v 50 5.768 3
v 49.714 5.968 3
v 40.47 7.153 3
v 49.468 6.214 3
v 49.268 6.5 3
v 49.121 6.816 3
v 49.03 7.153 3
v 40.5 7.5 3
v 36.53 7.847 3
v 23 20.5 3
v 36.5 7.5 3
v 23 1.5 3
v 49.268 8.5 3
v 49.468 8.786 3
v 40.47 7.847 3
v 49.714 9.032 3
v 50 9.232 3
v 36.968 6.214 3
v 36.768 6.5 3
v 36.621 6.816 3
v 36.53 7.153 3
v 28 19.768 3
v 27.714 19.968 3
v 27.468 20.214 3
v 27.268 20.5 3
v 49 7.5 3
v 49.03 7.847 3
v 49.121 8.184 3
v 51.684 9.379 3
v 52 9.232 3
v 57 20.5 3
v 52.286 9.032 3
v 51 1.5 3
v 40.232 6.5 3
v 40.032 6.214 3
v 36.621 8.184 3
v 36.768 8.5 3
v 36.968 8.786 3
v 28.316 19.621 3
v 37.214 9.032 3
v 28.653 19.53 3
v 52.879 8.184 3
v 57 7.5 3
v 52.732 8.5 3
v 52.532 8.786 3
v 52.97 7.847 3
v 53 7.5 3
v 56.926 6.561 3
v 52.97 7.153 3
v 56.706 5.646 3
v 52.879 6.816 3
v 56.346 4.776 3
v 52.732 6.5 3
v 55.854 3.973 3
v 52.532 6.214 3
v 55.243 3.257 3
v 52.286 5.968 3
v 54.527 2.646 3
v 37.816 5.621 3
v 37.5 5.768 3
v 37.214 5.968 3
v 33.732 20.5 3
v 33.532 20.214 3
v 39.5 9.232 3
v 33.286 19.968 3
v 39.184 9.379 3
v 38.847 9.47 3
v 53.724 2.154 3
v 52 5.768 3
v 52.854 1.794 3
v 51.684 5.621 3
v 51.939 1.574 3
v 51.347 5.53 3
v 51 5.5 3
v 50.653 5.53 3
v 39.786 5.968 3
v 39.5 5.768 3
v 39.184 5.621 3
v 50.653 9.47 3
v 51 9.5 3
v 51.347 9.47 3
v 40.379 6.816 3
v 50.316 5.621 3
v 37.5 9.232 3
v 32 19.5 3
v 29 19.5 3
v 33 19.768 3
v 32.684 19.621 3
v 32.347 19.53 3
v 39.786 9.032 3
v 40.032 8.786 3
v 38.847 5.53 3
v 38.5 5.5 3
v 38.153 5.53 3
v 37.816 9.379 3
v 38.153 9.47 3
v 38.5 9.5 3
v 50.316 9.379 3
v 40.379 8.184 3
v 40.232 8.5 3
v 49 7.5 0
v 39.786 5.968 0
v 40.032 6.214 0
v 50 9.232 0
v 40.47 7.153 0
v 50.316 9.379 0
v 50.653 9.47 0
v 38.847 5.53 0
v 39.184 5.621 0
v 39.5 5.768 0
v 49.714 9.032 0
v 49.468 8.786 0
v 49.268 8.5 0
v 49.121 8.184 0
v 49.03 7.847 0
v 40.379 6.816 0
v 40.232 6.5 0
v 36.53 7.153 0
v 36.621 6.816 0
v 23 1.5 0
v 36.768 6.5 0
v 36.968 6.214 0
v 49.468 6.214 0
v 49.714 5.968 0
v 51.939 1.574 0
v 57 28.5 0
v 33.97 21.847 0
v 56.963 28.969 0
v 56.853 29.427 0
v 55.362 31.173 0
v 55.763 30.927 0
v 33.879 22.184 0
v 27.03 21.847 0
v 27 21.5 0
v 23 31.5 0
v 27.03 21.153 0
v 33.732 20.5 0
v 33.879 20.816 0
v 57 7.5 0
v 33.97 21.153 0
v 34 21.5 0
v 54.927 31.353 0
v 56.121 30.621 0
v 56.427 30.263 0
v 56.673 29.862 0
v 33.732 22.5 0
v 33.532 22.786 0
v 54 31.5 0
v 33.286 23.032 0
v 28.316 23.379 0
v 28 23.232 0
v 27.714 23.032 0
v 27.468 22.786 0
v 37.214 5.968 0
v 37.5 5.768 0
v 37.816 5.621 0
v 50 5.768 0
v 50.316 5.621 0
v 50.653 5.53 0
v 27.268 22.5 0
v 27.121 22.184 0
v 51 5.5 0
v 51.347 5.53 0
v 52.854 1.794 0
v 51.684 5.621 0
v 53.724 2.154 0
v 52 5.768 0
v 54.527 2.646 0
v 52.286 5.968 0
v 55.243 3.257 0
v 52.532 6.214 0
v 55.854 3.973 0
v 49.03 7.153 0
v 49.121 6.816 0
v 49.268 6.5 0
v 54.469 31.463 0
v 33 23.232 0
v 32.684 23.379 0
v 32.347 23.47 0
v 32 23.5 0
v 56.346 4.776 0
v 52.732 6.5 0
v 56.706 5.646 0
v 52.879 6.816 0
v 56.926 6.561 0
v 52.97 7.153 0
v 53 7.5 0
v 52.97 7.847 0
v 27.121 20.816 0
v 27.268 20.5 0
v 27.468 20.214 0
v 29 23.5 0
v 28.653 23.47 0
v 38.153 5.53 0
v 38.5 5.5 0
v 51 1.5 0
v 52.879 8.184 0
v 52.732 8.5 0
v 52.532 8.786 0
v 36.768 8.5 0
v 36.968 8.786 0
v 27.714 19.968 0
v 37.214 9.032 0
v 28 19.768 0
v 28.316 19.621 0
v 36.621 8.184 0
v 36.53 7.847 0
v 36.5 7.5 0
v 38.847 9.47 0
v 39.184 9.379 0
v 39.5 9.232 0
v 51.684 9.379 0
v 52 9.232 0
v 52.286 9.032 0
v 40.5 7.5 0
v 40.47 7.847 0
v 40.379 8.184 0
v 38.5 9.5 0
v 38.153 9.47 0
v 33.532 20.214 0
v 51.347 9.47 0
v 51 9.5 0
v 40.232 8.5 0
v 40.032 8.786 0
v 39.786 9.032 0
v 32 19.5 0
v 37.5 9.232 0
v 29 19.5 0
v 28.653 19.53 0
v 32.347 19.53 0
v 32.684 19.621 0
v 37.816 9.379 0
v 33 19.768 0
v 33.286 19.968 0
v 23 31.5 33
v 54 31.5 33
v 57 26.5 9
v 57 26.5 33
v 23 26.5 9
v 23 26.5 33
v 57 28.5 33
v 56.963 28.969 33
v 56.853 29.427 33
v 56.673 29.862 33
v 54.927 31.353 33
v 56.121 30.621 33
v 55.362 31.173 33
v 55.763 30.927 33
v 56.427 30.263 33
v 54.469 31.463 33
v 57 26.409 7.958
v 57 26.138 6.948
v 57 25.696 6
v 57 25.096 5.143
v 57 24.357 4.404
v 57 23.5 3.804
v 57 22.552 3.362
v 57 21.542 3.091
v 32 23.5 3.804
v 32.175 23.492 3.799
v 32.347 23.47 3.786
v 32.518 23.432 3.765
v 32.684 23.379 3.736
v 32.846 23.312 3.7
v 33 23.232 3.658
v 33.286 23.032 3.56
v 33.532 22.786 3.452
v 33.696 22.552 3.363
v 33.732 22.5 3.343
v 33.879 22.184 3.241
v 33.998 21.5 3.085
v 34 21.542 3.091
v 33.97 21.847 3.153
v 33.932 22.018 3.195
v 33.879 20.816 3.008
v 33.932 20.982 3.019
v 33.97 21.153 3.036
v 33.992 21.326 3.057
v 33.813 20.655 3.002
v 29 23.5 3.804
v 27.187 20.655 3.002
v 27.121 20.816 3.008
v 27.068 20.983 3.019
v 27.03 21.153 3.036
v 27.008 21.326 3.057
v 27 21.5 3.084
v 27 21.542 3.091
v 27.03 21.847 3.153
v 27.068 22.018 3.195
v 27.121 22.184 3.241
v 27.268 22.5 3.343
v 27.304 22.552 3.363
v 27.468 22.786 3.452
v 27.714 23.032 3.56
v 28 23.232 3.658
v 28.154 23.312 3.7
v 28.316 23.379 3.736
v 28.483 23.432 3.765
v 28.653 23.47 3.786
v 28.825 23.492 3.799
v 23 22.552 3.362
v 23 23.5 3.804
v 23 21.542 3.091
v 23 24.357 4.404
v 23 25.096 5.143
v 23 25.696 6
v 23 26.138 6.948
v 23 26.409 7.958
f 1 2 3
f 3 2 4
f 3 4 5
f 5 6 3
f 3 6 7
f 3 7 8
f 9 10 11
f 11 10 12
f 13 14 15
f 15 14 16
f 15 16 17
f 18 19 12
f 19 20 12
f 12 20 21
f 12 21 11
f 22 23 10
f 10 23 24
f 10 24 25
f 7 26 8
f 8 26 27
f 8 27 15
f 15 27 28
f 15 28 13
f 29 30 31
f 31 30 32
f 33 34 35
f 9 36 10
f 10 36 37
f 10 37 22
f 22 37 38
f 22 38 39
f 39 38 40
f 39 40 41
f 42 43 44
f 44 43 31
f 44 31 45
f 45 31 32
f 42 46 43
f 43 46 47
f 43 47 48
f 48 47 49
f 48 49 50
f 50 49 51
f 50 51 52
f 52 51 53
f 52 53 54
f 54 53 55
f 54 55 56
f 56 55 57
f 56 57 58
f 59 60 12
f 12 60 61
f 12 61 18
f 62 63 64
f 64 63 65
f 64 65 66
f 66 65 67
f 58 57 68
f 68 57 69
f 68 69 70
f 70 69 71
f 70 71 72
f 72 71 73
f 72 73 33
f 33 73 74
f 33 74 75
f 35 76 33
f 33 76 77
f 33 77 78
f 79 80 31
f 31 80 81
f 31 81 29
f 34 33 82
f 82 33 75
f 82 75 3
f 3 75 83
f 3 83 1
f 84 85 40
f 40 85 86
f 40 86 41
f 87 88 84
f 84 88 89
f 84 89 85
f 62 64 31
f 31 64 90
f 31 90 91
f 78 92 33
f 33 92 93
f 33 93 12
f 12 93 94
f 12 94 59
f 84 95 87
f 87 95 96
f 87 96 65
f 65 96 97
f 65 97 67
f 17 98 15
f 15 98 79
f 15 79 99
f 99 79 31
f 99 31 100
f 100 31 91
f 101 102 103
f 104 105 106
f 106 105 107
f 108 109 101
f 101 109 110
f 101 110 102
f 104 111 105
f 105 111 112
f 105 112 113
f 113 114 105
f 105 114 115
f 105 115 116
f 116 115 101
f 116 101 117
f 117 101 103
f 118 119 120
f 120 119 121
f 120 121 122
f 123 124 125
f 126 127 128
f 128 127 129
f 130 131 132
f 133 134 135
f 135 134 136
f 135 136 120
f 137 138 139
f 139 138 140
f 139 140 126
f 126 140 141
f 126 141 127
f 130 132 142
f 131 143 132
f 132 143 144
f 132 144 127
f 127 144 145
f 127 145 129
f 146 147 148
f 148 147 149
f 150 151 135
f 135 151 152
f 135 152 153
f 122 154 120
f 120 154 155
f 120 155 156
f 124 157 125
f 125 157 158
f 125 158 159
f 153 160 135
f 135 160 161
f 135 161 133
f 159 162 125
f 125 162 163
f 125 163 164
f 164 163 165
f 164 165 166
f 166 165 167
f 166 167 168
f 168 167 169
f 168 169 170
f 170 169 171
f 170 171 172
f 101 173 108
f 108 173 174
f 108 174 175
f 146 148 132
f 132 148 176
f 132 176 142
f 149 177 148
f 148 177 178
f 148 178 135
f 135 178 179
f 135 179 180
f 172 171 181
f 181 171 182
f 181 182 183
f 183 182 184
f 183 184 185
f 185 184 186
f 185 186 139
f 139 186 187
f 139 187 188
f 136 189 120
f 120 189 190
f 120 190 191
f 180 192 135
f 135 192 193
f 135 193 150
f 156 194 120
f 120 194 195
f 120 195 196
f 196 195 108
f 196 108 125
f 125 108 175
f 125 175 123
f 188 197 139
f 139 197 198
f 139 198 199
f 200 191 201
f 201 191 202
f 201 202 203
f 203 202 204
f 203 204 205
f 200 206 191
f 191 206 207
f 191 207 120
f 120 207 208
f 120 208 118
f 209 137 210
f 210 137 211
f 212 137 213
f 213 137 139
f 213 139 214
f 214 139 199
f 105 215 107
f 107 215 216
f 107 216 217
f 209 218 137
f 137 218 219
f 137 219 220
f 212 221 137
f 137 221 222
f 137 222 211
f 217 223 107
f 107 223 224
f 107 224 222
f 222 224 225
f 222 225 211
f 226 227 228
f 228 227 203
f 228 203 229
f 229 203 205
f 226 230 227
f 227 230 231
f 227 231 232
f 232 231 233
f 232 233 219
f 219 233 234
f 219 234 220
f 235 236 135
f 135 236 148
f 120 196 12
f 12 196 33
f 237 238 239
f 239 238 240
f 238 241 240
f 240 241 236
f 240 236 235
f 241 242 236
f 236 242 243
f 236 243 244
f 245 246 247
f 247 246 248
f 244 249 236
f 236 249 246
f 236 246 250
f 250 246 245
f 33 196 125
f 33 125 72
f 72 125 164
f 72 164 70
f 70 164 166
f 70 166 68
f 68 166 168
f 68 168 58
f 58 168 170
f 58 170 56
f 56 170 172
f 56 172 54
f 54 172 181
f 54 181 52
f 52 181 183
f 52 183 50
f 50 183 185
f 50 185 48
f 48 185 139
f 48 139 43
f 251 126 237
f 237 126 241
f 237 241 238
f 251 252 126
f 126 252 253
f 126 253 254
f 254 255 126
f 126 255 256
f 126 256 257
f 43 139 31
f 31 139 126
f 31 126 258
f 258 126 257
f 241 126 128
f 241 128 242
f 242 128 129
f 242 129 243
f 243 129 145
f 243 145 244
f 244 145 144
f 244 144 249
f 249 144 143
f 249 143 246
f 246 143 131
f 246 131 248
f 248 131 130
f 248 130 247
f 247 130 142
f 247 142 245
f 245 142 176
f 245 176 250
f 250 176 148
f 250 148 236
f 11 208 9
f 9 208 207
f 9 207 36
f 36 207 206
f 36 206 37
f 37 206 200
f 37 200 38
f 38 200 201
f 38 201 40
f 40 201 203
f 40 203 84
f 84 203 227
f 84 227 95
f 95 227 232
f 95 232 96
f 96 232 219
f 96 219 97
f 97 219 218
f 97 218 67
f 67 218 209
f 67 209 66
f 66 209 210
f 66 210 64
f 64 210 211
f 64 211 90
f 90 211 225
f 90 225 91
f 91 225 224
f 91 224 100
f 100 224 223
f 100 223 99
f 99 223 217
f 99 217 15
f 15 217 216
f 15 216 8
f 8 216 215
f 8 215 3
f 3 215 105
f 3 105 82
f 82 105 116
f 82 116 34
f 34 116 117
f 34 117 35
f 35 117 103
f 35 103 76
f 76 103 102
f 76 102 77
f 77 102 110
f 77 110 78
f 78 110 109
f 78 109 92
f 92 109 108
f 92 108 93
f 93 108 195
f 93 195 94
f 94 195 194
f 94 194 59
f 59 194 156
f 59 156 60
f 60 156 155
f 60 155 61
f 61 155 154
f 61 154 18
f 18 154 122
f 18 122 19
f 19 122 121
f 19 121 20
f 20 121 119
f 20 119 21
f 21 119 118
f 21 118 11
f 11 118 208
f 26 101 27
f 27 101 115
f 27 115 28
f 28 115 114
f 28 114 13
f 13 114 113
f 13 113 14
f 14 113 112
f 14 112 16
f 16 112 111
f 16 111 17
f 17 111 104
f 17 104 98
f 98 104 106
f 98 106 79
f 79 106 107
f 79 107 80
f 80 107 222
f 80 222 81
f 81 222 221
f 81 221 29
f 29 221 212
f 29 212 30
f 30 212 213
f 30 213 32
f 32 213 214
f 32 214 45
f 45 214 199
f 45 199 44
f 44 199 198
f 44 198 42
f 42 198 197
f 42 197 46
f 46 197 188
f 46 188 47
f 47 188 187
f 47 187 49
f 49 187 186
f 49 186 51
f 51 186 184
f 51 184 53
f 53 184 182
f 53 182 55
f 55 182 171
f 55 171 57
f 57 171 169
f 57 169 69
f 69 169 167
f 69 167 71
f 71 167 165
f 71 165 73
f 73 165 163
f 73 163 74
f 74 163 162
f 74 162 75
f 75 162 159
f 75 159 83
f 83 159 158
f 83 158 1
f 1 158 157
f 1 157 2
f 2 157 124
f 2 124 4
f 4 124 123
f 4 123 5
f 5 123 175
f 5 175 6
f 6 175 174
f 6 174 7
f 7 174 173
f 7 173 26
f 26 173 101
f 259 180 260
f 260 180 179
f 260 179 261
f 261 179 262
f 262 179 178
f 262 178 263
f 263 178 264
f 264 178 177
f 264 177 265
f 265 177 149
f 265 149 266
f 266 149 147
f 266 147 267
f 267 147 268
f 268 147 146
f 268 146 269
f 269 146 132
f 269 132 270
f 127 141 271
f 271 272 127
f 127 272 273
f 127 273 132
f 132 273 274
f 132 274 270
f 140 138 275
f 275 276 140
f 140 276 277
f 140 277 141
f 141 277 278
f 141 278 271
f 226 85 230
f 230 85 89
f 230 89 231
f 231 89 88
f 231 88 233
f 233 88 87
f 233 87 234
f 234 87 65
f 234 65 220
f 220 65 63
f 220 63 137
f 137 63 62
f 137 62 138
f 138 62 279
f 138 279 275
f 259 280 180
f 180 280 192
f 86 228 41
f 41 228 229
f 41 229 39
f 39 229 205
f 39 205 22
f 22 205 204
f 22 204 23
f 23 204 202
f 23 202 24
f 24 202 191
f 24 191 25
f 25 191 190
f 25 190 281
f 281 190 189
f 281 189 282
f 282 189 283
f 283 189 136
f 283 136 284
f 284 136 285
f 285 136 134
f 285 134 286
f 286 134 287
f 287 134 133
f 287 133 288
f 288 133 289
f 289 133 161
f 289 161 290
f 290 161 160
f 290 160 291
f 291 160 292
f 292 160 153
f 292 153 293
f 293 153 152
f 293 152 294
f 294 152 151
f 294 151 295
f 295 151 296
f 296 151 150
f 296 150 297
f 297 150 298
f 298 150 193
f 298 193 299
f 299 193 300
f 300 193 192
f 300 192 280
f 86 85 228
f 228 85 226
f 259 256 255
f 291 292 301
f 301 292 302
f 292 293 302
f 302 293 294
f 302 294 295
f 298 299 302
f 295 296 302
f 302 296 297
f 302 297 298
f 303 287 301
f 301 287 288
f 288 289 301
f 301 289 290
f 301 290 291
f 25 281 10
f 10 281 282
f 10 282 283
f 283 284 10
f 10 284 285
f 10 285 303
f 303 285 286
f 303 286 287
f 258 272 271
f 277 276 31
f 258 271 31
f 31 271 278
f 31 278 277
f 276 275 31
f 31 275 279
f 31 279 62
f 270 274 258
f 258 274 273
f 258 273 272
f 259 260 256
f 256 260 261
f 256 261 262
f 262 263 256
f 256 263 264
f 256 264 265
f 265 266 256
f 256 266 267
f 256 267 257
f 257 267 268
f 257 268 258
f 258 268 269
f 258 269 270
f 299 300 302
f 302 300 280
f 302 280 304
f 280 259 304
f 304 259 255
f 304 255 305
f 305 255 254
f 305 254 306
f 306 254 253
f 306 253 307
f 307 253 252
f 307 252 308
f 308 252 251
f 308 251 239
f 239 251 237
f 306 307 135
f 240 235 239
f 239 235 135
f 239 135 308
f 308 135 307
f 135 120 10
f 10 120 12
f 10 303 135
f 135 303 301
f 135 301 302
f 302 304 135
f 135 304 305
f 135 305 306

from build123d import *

# Parameters (mm, degrees)
ESQUISSE1_R                  = 2
BOSS_EXTRU_1_DEPTH           = 3
BOSS_EXTRU_2_DEPTH           = 30
CONG_1_START                 = -11
CONG_1_DEPTH                 = 34
CONG_1_2_DEPTH               = 25
CONG_1_START_2               = 16.9999999
CONG_1_3_DEPTH               = 6.0000001
CONG_1_START_3               = 3
CONG_1_4_DEPTH               = 2
ENL_V_MAT_EXTRU_1_DEPTH      = 74.008561265
ENL_V_MAT_EXTRU_1_DEPTH_BACK = 74.008561265
ESQUISSE3_W                  = 37.381504973
ESQUISSE3_H                  = 48.316758503


with BuildPart() as part:
    # Esquisse1 → Boss.-Extru.1 (new body)
    with BuildSketch(Plane.XY):
        with BuildLine():
            Line((-5, 1.5), (23, 1.5))
            Line((23, 1.5), (23, 31.5))
            Line((23, 31.5), (-8, 31.5))
            ThreePointArc((-8, 31.5), (-10.121320344, 30.621320344), (-11, 28.5))
            Line((-11, 28.5), (-11, 7.5))
            ThreePointArc((-11, 7.5), (-9.242640687, 3.257359313), (-5, 1.5))
        make_face()
        with Locations((-5, 7.5)):
            Circle(ESQUISSE1_R, mode=Mode.SUBTRACT)
        with Locations((7.5, 7.5)):
            Circle(ESQUISSE1_R, mode=Mode.SUBTRACT)
        with BuildLine():
            Line((14, 23.5), (17, 23.5))
            ThreePointArc((17, 23.5), (19, 21.5), (17, 19.5))
            Line((17, 19.5), (14, 19.5))
            ThreePointArc((14, 19.5), (12, 21.5), (14, 23.5))
        make_face(mode=Mode.SUBTRACT)
    boss_extru_1 = extrude(amount=BOSS_EXTRU_1_DEPTH)

    # Esquisse2 → Boss.-Extru.2 (add)
    with BuildSketch(Plane.XY.offset(3)):
        with BuildLine():
            Line((23, 31.5), (-8, 31.5))
            ThreePointArc((-8, 31.5), (-10.121320344, 30.621320344), (-11, 28.5))
            Line((-11, 28.5), (-11, 26.5))
            Line((-11, 26.5), (23, 26.5))
            Line((23, 26.5), (23, 31.5))
        make_face()
    boss_extru_2 = extrude(amount=BOSS_EXTRU_2_DEPTH)

    # Congé1: read off the stored shape, not the designer's step
    # Congé1 outline → Congé1 (add)
    with BuildSketch(Plane.YZ.offset(CONG_1_START)):
        with BuildLine():
            ThreePointArc((26.5, 9), (25.696152423, 6), (23.5, 3.803847577))
            Line((23.5, 3.803847577), (23.5, 3))
            Line((23.5, 3), (26.5, 3))
            Line((26.5, 3), (26.5, 9))
        make_face()
    cong_1 = extrude(amount=CONG_1_DEPTH)

    # Cong_1 2 outline → Cong_1 2 (add)
    with BuildSketch(Plane.YZ.offset(CONG_1_START)):
        with BuildLine():
            Line((23.5, 3), (23.5, 3.803847577))
            ThreePointArc((23.5, 3.803847577), (22.052914271, 3.204445042), (20.5, 3))
            Line((20.5, 3), (23.5, 3))
        make_face()
    cong_1_2 = extrude(amount=CONG_1_2_DEPTH)

    # Cong_1 3 outline → Cong_1 3 (add)
    with BuildSketch(Plane.YZ.offset(CONG_1_START_2)):
        with BuildLine():
            Line((23.5, 3), (23.5, 3.803847577))
            ThreePointArc((23.5, 3.803847577), (22.052914271, 3.204445042), (20.5, 3))
            Line((20.5, 3), (23.5, 3))
        make_face()
    cong_1_3 = extrude(amount=CONG_1_3_DEPTH)

    # Cong_1 4 outline → Cong_1 4 (cut)
    with BuildSketch(Plane.XY.offset(CONG_1_START_3)):
        with BuildLine():
            Line((17, 23.5), (17, 19.5))
            ThreePointArc((17, 19.5), (19, 21.5), (17, 23.5))
        make_face()
        with BuildLine():
            ThreePointArc((14, 23.5), (12, 21.5), (14, 19.5))
            Line((14, 19.5), (14, 23.5))
        make_face()
    cong_1_4 = extrude(amount=CONG_1_4_DEPTH, mode=Mode.SUBTRACT)

    # Symétrie1: Boss.-Extru.1, Boss.-Extru.2, Congé1, Cong_1 2, Cong_1 3, Cong_1 4 across plane
    add(boss_extru_1.mirror(Plane(origin=(23, 1.5, 3), x_dir=(0, 0, 1), z_dir=(-1, 0, 0))))
    add(boss_extru_2.mirror(Plane(origin=(23, 1.5, 3), x_dir=(0, 0, 1), z_dir=(-1, 0, 0))))
    add(cong_1.mirror(Plane(origin=(23, 1.5, 3), x_dir=(0, 0, 1), z_dir=(-1, 0, 0))))
    add(cong_1_2.mirror(Plane(origin=(23, 1.5, 3), x_dir=(0, 0, 1), z_dir=(-1, 0, 0))))
    add(cong_1_3.mirror(Plane(origin=(23, 1.5, 3), x_dir=(0, 0, 1), z_dir=(-1, 0, 0))))
    add(cong_1_4.mirror(Plane(origin=(23, 1.5, 3), x_dir=(0, 0, 1), z_dir=(-1, 0, 0))), mode=Mode.SUBTRACT)

    # Esquisse3 → Enlèv. mat.-Extru.1 (cut, two sides: drawn at the far end of the back side and taken through both)
    with BuildSketch(Plane.XY.offset(33).offset(-ENL_V_MAT_EXTRU_1_DEPTH_BACK)):
        with Locations((4.309247513, 15.68567261)):
            Rectangle(ESQUISSE3_W, ESQUISSE3_H)
    extrude(amount=ENL_V_MAT_EXTRU_1_DEPTH + ENL_V_MAT_EXTRU_1_DEPTH_BACK, mode=Mode.SUBTRACT)


solid = part.part
